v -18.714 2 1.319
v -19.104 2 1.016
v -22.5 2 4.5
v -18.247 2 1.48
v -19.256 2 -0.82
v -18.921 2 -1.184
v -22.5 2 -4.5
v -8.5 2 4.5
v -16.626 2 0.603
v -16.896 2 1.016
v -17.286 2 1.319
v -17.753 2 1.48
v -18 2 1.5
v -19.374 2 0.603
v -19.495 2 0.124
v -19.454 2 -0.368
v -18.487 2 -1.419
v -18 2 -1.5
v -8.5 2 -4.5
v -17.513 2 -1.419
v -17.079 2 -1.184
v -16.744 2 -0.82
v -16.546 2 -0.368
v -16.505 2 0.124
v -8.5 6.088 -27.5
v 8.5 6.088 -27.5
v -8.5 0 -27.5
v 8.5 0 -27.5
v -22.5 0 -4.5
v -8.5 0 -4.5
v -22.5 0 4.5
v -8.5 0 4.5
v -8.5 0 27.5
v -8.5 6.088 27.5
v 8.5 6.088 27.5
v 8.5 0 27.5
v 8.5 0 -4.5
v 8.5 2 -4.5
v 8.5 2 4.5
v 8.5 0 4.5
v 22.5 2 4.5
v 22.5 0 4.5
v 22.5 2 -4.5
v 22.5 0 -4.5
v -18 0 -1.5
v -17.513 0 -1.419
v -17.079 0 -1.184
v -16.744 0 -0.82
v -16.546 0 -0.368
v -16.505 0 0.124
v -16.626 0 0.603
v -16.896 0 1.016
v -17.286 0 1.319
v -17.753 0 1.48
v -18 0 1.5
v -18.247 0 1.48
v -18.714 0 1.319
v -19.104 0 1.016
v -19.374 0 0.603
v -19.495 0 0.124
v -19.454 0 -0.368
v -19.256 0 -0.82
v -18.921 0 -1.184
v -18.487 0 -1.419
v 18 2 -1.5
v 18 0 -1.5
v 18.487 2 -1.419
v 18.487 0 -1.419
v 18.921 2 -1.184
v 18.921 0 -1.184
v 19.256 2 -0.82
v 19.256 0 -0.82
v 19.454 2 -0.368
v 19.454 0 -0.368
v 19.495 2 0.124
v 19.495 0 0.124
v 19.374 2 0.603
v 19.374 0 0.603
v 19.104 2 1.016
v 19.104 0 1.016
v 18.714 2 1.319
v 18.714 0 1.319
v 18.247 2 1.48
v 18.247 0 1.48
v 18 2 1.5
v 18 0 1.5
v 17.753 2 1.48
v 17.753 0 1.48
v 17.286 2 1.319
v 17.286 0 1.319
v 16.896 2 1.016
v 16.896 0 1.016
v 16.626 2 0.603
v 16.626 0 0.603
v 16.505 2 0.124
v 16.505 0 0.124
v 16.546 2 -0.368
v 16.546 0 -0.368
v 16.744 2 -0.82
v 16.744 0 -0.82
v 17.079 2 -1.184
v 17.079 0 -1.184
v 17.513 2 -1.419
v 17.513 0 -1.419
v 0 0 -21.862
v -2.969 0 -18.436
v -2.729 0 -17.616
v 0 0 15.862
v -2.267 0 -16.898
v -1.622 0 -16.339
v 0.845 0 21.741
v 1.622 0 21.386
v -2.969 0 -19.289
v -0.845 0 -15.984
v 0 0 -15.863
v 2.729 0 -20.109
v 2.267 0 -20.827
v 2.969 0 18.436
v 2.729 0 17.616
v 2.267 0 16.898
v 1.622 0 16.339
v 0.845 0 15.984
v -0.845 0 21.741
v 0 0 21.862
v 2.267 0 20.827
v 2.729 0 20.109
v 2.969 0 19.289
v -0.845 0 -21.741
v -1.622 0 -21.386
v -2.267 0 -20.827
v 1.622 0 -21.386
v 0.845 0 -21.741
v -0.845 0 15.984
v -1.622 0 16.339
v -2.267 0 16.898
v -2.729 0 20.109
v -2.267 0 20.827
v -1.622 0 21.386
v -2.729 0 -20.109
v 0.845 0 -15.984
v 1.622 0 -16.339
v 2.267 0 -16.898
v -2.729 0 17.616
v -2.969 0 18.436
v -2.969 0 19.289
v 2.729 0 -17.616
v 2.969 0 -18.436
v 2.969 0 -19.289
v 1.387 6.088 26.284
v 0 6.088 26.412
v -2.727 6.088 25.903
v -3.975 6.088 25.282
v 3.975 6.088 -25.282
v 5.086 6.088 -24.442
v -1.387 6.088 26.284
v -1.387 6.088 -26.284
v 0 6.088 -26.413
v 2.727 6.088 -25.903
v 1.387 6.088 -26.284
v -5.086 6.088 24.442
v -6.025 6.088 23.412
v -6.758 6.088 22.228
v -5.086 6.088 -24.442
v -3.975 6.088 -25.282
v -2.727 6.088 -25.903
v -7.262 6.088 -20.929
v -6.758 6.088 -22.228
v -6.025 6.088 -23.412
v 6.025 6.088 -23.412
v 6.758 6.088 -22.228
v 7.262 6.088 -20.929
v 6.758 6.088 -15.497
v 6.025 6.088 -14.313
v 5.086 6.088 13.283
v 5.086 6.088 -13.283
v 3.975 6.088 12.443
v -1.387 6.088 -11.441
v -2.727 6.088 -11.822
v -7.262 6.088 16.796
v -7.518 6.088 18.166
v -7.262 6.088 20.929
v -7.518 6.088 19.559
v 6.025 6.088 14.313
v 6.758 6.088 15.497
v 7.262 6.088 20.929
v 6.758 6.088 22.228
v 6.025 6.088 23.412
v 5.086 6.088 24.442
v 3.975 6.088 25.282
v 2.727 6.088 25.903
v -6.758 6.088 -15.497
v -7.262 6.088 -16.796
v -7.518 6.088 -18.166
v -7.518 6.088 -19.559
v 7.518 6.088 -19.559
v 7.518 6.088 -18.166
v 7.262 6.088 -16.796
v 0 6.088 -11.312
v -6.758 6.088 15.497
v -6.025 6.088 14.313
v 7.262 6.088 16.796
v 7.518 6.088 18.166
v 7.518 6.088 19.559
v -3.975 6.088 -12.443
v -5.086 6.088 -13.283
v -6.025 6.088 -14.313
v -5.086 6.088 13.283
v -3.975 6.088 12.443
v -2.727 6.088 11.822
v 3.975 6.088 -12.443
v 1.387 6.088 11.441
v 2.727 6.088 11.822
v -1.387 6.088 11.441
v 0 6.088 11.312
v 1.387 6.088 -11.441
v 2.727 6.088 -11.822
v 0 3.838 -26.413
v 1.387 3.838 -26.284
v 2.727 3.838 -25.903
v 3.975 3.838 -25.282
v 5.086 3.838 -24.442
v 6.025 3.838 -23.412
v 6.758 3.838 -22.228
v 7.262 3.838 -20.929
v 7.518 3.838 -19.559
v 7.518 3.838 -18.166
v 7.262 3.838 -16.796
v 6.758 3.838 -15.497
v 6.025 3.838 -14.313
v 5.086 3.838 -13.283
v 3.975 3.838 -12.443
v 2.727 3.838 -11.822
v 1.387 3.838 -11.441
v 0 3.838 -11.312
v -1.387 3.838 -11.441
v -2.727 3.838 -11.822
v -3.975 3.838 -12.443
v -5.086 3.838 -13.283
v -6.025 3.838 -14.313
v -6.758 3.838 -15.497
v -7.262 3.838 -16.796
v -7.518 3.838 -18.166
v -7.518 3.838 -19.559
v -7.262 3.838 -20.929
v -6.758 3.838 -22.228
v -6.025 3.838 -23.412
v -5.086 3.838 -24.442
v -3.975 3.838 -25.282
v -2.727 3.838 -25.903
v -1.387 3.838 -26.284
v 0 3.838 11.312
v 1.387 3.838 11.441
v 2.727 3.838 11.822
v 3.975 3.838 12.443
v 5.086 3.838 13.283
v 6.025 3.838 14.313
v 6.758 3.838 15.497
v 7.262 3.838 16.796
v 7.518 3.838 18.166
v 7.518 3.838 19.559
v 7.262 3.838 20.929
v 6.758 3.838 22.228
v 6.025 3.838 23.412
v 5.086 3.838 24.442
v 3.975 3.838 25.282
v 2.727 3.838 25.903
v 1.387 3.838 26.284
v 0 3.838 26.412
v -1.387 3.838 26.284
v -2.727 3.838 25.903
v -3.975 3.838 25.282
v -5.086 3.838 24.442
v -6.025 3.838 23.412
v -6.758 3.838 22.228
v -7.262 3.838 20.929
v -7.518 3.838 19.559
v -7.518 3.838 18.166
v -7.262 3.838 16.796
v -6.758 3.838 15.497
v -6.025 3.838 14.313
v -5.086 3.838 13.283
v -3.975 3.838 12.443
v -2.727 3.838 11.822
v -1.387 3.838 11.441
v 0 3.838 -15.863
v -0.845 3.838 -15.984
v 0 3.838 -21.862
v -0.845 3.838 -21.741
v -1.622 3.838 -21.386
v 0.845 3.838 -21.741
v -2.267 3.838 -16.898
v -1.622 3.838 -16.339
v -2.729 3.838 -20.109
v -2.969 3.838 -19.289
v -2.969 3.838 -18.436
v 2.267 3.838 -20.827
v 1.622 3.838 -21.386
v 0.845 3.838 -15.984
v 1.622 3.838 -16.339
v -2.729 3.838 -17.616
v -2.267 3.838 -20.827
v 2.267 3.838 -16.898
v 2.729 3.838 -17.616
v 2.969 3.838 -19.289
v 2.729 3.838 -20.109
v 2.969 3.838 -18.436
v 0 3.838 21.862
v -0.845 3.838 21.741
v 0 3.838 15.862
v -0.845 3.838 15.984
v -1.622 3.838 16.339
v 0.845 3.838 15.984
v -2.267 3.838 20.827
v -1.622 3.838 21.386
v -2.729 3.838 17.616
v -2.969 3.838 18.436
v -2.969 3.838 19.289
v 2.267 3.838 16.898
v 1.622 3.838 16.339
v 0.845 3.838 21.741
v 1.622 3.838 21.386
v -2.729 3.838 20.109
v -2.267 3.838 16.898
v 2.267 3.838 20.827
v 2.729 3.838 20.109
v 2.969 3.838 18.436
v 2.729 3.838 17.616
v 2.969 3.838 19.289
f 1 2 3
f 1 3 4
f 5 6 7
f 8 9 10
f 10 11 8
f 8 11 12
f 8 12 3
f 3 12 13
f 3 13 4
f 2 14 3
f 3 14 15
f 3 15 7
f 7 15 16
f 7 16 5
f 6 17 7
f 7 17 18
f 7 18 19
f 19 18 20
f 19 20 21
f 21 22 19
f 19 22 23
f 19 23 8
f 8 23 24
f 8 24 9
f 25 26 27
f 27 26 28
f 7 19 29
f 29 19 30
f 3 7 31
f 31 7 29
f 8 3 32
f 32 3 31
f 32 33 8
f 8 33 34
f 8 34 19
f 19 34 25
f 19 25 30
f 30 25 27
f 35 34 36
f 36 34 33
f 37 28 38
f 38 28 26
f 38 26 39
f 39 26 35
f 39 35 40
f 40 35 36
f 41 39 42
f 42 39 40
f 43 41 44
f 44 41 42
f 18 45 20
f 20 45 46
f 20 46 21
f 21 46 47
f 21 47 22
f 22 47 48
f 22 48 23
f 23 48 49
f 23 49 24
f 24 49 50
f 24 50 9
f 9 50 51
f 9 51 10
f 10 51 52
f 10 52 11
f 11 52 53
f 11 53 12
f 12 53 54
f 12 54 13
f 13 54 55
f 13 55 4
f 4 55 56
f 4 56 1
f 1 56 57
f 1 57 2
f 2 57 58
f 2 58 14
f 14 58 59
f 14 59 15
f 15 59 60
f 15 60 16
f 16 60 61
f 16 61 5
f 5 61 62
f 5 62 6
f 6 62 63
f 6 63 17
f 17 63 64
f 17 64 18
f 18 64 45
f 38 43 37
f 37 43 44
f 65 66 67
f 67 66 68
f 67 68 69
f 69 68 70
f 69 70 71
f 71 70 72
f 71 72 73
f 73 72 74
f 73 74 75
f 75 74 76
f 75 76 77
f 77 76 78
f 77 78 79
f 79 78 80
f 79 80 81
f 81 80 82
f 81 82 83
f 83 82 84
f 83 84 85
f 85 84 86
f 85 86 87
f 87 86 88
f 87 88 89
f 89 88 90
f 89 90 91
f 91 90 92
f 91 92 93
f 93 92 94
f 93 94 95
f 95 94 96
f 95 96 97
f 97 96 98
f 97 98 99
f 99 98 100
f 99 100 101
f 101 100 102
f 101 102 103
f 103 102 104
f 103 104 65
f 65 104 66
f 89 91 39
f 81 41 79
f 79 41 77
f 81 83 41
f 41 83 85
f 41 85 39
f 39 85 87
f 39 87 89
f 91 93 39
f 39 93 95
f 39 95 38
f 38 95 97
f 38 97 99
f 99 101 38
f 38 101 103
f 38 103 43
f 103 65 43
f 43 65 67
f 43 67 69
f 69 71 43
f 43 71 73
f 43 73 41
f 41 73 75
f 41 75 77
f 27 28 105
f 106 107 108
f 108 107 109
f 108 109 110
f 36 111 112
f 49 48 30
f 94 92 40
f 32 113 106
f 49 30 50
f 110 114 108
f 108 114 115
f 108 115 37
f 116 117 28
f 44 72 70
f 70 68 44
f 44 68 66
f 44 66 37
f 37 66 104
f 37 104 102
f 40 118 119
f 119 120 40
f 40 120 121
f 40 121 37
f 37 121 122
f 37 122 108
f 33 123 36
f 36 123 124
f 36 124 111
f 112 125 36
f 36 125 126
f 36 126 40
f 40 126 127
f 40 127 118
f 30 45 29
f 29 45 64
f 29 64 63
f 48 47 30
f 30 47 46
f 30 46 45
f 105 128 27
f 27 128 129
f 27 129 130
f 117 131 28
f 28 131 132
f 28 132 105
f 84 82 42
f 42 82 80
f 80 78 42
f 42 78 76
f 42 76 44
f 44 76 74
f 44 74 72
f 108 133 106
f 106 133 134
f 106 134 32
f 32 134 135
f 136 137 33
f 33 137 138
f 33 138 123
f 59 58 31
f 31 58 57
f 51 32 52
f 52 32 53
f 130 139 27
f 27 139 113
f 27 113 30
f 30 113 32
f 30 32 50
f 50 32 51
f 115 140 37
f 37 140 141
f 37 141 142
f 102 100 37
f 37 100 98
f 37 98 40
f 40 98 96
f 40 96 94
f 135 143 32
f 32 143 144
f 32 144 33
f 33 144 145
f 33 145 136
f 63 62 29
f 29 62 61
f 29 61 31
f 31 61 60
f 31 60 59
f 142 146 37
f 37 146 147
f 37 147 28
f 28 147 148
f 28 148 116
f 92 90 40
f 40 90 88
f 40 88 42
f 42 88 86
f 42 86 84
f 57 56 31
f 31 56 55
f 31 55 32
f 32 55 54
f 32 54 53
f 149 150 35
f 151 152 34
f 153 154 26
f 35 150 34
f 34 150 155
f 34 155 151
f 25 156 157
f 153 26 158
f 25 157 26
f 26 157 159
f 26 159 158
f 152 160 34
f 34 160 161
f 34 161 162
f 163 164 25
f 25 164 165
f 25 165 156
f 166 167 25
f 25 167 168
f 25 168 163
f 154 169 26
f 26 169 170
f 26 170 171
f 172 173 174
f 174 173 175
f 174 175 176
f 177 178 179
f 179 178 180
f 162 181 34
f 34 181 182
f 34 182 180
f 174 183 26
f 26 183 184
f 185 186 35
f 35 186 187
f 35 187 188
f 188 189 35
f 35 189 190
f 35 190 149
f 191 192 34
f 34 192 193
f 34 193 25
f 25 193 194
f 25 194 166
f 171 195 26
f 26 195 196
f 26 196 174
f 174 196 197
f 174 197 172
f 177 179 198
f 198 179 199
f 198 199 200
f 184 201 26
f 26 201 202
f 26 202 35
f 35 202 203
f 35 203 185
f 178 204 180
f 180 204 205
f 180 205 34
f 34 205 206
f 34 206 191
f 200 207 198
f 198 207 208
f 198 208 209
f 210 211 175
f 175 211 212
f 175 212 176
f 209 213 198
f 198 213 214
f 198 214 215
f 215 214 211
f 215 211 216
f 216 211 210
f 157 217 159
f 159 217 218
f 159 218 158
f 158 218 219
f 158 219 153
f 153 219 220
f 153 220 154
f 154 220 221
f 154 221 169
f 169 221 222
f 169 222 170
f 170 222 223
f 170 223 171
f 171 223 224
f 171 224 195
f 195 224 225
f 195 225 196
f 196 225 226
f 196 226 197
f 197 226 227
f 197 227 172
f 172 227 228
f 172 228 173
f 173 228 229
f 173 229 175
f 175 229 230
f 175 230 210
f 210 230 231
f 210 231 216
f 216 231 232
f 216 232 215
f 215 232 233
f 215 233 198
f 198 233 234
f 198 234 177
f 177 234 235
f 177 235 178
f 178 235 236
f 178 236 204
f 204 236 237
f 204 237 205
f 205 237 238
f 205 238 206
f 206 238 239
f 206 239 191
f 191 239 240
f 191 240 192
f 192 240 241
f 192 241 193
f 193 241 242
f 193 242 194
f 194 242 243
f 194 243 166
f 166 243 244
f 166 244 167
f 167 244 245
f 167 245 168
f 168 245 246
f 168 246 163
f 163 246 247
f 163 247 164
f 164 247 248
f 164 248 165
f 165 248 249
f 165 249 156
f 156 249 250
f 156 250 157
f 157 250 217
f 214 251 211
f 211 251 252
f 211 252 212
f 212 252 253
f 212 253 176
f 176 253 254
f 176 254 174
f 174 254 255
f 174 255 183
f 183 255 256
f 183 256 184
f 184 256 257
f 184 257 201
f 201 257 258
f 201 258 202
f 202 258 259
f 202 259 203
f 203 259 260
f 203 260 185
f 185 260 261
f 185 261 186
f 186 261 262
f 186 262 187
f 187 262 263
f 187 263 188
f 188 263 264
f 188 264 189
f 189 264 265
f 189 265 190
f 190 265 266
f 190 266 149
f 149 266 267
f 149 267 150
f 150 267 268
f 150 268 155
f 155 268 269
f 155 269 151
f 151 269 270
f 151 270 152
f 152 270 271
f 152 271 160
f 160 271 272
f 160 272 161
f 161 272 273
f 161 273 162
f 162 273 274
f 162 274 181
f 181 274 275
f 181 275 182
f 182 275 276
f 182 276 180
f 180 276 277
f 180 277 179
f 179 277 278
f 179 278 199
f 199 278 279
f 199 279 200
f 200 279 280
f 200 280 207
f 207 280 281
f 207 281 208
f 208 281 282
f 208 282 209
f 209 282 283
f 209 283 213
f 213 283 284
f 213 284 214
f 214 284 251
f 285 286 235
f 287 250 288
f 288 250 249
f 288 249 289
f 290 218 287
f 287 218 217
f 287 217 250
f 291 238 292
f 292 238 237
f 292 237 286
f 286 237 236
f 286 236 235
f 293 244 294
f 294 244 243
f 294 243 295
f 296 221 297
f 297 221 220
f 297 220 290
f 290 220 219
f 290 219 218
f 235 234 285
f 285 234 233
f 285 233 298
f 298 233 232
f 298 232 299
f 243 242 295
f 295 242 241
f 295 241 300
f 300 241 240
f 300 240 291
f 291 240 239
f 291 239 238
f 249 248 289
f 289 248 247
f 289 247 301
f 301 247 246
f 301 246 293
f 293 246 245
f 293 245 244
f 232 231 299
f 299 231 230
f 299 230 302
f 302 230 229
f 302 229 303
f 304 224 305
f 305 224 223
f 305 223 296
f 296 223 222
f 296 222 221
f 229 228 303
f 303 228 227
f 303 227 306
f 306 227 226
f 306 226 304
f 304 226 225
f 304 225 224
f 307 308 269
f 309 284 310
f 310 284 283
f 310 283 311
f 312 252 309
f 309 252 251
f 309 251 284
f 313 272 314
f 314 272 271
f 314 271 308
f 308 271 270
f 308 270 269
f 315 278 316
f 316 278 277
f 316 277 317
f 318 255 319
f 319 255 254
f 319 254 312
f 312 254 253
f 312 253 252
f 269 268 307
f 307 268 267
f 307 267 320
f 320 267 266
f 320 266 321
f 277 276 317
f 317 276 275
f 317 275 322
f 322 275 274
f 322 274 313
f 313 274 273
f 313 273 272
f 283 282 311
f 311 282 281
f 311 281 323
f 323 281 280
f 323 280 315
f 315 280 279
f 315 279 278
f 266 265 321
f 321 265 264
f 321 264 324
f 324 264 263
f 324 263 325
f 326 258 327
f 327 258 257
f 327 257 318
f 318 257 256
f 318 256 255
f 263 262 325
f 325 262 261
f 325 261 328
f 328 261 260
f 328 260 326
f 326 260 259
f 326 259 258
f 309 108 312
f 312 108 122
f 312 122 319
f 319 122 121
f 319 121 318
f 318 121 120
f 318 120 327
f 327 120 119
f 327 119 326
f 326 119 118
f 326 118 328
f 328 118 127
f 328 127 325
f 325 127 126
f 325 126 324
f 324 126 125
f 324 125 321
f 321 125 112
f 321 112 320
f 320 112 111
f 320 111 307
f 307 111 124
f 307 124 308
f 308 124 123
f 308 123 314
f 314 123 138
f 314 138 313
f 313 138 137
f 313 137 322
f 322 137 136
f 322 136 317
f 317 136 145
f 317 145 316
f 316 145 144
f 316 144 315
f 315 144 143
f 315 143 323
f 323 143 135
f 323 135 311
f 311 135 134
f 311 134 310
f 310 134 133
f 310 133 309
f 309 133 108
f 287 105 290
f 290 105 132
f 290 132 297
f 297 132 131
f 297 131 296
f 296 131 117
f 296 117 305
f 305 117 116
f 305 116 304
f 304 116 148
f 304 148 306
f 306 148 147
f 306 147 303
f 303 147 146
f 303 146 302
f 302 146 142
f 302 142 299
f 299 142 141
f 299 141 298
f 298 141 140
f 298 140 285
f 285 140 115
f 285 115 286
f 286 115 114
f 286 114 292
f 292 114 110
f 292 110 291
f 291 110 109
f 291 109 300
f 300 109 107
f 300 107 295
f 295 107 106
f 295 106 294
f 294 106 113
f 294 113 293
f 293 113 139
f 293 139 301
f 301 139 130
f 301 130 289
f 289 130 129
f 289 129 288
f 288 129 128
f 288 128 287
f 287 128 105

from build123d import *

# Parameters (mm, degrees)
SKETCH1_W           = 17
SKETCH1_H           = 55
SKETCH1_R           = 7.55
SKETCH1_W_2         = 14
SKETCH1_H_2         = 9
SKETCH1_R_2         = 1.5
BOSS_EXTRUDE1_DEPTH = 2
BOSS_EXTRUDE2_START = 2
SKETCH1_4_W         = 17
SKETCH1_4_H         = 55
SKETCH1_4_R         = 7.55
BOSS_EXTRUDE2_DEPTH = 1.838
BOSS_EXTRUDE3_START = 3.838
SKETCH1_5_W         = 17
SKETCH1_5_H         = 55
SKETCH1_5_R         = 7.55
BOSS_EXTRUDE3_DEPTH = 2.25
SKETCH3_R           = 3
CUT_EXTRUDE1_DEPTH  = 7.088


with BuildPart() as part:
    # Sketch1 → Boss-Extrude1 (new body)
    with BuildSketch(Plane(origin=(0, 0, 0), x_dir=(1, 0, 0), z_dir=(0, 1, 0))):
        Rectangle(SKETCH1_W, SKETCH1_H)
        with Locations((0, -18.8625)):
            Circle(SKETCH1_R, mode=Mode.SUBTRACT)
        with Locations((0, 18.8625)):
            Circle(SKETCH1_R, mode=Mode.SUBTRACT)
        with Locations((15.5, 0)):
            Rectangle(SKETCH1_W_2, SKETCH1_H_2)
        with Locations((18, 0)):
            Circle(SKETCH1_R_2, mode=Mode.SUBTRACT)
        with Locations((-15.5, 0)):
            Rectangle(SKETCH1_W_2, SKETCH1_H_2)
        with Locations((-18, 0)):
            Circle(SKETCH1_R_2, mode=Mode.SUBTRACT)
        with Locations((0, -18.8625)):
            Circle(SKETCH1_R)
        with Locations((0, 18.8625)):
            Circle(SKETCH1_R)
    extrude(amount=BOSS_EXTRUDE1_DEPTH)

    # Sketch1<4> → Boss-Extrude2 (add)
    with BuildSketch(Plane(origin=(0, 0, 0), x_dir=(1, 0, 0), z_dir=(0, 1, 0)).offset(BOSS_EXTRUDE2_START)):
        Rectangle(SKETCH1_4_W, SKETCH1_4_H)
        with Locations((0, -18.8625)):
            Circle(SKETCH1_4_R, mode=Mode.SUBTRACT)
        with Locations((0, 18.8625)):
            Circle(SKETCH1_4_R, mode=Mode.SUBTRACT)
        with Locations((0, -18.8625)):
            Circle(SKETCH1_4_R)
        with Locations((0, 18.8625)):
            Circle(SKETCH1_4_R)
    extrude(amount=BOSS_EXTRUDE2_DEPTH)

    # Sketch1<5> → Boss-Extrude3 (add)
    with BuildSketch(Plane(origin=(0, 0, 0), x_dir=(1, 0, 0), z_dir=(0, 1, 0)).offset(BOSS_EXTRUDE3_START)):
        Rectangle(SKETCH1_5_W, SKETCH1_5_H)
        with Locations((0, -18.8625)):
            Circle(SKETCH1_5_R, mode=Mode.SUBTRACT)
        with Locations((0, 18.8625)):
            Circle(SKETCH1_5_R, mode=Mode.SUBTRACT)
    extrude(amount=BOSS_EXTRUDE3_DEPTH)

    # Sketch3 → Cut-Extrude1 (cut, through all)
    with BuildSketch(Plane.XZ):
        with Locations((0, -18.8625)):
            Circle(SKETCH3_R)
        with Locations((0, 18.8625)):
            Circle(SKETCH3_R)
    extrude(amount=-CUT_EXTRUDE1_DEPTH, mode=Mode.SUBTRACT)


solid = part.part
